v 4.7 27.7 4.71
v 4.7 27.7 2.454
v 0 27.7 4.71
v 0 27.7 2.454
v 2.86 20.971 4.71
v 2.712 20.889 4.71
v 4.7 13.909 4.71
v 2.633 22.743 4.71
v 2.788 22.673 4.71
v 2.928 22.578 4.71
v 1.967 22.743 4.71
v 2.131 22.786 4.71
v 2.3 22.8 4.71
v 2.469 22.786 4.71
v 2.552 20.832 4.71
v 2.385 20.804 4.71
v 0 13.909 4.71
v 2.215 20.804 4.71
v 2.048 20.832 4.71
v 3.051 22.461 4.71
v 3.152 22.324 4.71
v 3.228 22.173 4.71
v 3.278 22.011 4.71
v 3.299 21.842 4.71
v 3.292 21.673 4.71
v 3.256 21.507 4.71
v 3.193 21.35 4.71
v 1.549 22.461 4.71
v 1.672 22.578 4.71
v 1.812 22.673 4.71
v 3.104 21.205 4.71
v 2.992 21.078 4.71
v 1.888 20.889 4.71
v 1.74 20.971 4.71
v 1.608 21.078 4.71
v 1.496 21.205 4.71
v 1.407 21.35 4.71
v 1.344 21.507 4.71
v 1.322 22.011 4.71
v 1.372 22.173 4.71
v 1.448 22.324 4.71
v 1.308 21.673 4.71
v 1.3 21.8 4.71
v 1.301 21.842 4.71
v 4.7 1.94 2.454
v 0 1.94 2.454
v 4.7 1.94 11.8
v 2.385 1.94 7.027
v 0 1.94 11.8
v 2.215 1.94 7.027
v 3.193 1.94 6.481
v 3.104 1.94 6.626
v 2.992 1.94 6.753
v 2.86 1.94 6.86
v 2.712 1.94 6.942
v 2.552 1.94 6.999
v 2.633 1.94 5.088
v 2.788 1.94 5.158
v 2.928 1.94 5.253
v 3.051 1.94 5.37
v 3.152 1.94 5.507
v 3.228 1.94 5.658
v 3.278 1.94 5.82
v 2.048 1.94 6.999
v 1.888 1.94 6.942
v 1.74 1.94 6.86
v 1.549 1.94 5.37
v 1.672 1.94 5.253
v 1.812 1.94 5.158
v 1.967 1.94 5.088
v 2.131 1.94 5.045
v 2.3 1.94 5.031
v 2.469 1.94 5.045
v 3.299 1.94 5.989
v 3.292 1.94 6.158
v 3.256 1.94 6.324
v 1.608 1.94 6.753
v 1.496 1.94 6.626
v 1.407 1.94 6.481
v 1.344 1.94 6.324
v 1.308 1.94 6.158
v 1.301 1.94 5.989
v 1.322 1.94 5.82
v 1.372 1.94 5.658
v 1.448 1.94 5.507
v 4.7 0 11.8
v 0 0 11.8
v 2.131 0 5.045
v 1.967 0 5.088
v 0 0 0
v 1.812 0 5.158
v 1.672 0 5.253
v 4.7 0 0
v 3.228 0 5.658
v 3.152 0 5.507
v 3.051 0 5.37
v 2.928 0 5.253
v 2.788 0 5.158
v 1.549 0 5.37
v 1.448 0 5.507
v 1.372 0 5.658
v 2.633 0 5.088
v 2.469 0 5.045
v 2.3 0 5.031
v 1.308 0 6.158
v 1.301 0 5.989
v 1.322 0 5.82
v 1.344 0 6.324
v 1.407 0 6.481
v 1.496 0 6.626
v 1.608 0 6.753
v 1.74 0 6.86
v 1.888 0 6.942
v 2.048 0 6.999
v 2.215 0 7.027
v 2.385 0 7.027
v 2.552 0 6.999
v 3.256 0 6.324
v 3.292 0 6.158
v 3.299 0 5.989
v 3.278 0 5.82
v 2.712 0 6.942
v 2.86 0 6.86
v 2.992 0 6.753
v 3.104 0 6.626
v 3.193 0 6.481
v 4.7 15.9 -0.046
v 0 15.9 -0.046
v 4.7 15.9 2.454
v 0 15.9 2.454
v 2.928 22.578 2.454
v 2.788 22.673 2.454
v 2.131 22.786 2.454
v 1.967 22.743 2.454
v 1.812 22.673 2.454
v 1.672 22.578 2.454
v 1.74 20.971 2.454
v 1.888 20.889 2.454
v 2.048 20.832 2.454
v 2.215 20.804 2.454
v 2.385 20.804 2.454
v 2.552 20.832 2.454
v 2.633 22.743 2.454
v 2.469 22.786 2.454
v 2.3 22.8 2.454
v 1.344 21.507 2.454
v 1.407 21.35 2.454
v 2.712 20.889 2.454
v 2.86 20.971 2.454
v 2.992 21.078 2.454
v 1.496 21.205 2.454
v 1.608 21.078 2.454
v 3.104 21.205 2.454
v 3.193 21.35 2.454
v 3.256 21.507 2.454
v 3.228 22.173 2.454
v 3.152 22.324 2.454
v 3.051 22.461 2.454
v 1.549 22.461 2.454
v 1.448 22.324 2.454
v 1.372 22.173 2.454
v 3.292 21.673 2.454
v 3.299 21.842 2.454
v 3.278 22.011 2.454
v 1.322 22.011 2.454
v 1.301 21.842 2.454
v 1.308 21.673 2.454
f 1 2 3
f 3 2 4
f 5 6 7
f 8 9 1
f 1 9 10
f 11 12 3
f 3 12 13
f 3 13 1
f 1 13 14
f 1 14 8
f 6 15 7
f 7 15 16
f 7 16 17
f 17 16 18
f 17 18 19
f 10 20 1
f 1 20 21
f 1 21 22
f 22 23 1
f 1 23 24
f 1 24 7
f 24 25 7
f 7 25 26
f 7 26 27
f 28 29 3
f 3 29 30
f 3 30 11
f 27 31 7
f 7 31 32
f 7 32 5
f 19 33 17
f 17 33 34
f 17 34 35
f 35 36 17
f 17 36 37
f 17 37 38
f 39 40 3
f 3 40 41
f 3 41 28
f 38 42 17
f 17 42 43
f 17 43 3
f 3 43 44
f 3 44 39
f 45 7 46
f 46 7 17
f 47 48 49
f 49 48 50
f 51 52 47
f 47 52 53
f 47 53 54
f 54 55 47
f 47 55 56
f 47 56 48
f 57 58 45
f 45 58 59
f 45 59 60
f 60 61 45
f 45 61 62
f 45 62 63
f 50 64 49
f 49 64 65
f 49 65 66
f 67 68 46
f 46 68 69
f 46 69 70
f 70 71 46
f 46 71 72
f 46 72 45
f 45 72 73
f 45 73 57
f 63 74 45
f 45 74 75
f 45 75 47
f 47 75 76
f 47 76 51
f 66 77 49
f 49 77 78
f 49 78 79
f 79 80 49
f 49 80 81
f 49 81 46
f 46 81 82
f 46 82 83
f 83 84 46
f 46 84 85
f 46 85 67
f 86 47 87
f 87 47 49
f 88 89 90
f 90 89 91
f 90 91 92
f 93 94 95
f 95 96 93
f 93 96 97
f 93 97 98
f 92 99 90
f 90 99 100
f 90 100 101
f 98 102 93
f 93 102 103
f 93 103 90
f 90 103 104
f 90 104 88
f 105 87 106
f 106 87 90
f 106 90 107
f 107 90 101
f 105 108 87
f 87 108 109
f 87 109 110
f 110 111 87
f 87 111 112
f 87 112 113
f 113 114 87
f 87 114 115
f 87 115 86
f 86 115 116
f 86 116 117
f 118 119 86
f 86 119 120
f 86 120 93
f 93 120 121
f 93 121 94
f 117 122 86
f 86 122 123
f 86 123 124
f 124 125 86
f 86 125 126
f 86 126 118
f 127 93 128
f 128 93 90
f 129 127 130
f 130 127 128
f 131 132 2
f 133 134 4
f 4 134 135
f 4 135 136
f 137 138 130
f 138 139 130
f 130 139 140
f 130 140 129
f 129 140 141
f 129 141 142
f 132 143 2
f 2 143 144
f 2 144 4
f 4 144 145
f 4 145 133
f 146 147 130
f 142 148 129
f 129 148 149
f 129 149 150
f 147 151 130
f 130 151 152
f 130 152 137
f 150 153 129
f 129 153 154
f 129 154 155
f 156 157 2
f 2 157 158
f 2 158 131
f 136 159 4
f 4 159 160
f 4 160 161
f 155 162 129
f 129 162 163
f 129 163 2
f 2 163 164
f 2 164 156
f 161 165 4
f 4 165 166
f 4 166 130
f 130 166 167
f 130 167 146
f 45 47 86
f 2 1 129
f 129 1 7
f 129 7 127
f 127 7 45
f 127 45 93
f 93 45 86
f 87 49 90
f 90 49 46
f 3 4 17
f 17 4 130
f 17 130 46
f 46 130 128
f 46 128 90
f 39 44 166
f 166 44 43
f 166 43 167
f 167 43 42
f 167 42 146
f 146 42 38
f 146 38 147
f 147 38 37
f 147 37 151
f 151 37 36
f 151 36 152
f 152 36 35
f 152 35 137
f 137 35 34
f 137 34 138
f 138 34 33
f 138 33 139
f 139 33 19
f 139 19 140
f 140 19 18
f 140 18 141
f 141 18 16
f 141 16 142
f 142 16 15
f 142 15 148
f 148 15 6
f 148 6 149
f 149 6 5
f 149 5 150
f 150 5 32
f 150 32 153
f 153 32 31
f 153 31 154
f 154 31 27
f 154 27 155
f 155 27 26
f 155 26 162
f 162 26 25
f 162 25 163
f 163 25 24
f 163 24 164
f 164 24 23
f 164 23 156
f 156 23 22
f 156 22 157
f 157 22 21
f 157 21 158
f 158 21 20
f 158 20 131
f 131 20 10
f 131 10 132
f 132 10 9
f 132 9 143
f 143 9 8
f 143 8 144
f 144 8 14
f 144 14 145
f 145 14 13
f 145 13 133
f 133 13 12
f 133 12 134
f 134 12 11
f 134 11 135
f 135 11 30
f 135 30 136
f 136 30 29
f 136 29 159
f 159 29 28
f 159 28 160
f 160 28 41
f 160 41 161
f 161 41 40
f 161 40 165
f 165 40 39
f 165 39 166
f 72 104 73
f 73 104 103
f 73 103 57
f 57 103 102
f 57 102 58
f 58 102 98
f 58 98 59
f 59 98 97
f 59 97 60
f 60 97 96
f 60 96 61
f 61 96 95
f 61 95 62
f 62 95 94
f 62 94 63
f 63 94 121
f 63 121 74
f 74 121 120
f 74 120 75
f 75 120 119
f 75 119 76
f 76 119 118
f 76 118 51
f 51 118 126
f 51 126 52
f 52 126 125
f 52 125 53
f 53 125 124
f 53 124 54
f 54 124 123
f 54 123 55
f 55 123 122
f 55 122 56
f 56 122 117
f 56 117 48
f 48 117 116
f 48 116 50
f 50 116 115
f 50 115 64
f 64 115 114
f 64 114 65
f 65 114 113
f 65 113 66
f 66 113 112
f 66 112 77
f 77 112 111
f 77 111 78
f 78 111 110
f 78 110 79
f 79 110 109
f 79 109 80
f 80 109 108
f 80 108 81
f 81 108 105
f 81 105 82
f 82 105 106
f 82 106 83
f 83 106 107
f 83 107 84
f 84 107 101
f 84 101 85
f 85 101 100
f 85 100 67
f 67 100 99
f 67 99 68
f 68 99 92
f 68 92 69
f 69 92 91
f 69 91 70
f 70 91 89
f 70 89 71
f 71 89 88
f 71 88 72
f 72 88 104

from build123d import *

# Parameters (mm, degrees)
BOSS_EXTRUDE1_DEPTH = 4.7
SKETCH2_R           = 1
CUT_EXTRUDE1_DEPTH  = 4.7
SKETCH3_R           = 1
CUT_EXTRUDE2_DEPTH  = 4.7


with BuildPart() as part:
    # Sketch1 → Boss-Extrude1 (new body)
    with BuildSketch(Plane(origin=(0, 0, 0), x_dir=(0, 0, -1), z_dir=(1, 0, 0))):
        Polygon((-2.453503476, 27.7), (-2.453503476, 15.9), (0.046496524, 15.9), (0, 0), (-11.8, 0), (-11.8, 1.939542533), (-2.453503476, 1.939542533), (-4.709766252, 13.909076926), (-4.709766252, 27.7), align=None)
    extrude(amount=BOSS_EXTRUDE1_DEPTH)

    # Sketch2 → Cut-Extrude1 (cut)
    with BuildSketch(Plane(origin=(0, 0, 2.453503476), x_dir=(-1, 0, 0), z_dir=(0, 0, -1))):
        with Locations(Location((-2.3, 21.8, 0), (0, 0, 90))):
            Circle(SKETCH2_R)
    extrude(amount=-CUT_EXTRUDE1_DEPTH, mode=Mode.SUBTRACT)

    # Sketch3 → Cut-Extrude2 (cut)
    with BuildSketch(Plane.XZ):
        with Locations(Location((2.3, 6.031025585, 0), (0, 0, 270))):
            Circle(SKETCH3_R)
    extrude(amount=-CUT_EXTRUDE2_DEPTH, mode=Mode.SUBTRACT)


solid = part.part
